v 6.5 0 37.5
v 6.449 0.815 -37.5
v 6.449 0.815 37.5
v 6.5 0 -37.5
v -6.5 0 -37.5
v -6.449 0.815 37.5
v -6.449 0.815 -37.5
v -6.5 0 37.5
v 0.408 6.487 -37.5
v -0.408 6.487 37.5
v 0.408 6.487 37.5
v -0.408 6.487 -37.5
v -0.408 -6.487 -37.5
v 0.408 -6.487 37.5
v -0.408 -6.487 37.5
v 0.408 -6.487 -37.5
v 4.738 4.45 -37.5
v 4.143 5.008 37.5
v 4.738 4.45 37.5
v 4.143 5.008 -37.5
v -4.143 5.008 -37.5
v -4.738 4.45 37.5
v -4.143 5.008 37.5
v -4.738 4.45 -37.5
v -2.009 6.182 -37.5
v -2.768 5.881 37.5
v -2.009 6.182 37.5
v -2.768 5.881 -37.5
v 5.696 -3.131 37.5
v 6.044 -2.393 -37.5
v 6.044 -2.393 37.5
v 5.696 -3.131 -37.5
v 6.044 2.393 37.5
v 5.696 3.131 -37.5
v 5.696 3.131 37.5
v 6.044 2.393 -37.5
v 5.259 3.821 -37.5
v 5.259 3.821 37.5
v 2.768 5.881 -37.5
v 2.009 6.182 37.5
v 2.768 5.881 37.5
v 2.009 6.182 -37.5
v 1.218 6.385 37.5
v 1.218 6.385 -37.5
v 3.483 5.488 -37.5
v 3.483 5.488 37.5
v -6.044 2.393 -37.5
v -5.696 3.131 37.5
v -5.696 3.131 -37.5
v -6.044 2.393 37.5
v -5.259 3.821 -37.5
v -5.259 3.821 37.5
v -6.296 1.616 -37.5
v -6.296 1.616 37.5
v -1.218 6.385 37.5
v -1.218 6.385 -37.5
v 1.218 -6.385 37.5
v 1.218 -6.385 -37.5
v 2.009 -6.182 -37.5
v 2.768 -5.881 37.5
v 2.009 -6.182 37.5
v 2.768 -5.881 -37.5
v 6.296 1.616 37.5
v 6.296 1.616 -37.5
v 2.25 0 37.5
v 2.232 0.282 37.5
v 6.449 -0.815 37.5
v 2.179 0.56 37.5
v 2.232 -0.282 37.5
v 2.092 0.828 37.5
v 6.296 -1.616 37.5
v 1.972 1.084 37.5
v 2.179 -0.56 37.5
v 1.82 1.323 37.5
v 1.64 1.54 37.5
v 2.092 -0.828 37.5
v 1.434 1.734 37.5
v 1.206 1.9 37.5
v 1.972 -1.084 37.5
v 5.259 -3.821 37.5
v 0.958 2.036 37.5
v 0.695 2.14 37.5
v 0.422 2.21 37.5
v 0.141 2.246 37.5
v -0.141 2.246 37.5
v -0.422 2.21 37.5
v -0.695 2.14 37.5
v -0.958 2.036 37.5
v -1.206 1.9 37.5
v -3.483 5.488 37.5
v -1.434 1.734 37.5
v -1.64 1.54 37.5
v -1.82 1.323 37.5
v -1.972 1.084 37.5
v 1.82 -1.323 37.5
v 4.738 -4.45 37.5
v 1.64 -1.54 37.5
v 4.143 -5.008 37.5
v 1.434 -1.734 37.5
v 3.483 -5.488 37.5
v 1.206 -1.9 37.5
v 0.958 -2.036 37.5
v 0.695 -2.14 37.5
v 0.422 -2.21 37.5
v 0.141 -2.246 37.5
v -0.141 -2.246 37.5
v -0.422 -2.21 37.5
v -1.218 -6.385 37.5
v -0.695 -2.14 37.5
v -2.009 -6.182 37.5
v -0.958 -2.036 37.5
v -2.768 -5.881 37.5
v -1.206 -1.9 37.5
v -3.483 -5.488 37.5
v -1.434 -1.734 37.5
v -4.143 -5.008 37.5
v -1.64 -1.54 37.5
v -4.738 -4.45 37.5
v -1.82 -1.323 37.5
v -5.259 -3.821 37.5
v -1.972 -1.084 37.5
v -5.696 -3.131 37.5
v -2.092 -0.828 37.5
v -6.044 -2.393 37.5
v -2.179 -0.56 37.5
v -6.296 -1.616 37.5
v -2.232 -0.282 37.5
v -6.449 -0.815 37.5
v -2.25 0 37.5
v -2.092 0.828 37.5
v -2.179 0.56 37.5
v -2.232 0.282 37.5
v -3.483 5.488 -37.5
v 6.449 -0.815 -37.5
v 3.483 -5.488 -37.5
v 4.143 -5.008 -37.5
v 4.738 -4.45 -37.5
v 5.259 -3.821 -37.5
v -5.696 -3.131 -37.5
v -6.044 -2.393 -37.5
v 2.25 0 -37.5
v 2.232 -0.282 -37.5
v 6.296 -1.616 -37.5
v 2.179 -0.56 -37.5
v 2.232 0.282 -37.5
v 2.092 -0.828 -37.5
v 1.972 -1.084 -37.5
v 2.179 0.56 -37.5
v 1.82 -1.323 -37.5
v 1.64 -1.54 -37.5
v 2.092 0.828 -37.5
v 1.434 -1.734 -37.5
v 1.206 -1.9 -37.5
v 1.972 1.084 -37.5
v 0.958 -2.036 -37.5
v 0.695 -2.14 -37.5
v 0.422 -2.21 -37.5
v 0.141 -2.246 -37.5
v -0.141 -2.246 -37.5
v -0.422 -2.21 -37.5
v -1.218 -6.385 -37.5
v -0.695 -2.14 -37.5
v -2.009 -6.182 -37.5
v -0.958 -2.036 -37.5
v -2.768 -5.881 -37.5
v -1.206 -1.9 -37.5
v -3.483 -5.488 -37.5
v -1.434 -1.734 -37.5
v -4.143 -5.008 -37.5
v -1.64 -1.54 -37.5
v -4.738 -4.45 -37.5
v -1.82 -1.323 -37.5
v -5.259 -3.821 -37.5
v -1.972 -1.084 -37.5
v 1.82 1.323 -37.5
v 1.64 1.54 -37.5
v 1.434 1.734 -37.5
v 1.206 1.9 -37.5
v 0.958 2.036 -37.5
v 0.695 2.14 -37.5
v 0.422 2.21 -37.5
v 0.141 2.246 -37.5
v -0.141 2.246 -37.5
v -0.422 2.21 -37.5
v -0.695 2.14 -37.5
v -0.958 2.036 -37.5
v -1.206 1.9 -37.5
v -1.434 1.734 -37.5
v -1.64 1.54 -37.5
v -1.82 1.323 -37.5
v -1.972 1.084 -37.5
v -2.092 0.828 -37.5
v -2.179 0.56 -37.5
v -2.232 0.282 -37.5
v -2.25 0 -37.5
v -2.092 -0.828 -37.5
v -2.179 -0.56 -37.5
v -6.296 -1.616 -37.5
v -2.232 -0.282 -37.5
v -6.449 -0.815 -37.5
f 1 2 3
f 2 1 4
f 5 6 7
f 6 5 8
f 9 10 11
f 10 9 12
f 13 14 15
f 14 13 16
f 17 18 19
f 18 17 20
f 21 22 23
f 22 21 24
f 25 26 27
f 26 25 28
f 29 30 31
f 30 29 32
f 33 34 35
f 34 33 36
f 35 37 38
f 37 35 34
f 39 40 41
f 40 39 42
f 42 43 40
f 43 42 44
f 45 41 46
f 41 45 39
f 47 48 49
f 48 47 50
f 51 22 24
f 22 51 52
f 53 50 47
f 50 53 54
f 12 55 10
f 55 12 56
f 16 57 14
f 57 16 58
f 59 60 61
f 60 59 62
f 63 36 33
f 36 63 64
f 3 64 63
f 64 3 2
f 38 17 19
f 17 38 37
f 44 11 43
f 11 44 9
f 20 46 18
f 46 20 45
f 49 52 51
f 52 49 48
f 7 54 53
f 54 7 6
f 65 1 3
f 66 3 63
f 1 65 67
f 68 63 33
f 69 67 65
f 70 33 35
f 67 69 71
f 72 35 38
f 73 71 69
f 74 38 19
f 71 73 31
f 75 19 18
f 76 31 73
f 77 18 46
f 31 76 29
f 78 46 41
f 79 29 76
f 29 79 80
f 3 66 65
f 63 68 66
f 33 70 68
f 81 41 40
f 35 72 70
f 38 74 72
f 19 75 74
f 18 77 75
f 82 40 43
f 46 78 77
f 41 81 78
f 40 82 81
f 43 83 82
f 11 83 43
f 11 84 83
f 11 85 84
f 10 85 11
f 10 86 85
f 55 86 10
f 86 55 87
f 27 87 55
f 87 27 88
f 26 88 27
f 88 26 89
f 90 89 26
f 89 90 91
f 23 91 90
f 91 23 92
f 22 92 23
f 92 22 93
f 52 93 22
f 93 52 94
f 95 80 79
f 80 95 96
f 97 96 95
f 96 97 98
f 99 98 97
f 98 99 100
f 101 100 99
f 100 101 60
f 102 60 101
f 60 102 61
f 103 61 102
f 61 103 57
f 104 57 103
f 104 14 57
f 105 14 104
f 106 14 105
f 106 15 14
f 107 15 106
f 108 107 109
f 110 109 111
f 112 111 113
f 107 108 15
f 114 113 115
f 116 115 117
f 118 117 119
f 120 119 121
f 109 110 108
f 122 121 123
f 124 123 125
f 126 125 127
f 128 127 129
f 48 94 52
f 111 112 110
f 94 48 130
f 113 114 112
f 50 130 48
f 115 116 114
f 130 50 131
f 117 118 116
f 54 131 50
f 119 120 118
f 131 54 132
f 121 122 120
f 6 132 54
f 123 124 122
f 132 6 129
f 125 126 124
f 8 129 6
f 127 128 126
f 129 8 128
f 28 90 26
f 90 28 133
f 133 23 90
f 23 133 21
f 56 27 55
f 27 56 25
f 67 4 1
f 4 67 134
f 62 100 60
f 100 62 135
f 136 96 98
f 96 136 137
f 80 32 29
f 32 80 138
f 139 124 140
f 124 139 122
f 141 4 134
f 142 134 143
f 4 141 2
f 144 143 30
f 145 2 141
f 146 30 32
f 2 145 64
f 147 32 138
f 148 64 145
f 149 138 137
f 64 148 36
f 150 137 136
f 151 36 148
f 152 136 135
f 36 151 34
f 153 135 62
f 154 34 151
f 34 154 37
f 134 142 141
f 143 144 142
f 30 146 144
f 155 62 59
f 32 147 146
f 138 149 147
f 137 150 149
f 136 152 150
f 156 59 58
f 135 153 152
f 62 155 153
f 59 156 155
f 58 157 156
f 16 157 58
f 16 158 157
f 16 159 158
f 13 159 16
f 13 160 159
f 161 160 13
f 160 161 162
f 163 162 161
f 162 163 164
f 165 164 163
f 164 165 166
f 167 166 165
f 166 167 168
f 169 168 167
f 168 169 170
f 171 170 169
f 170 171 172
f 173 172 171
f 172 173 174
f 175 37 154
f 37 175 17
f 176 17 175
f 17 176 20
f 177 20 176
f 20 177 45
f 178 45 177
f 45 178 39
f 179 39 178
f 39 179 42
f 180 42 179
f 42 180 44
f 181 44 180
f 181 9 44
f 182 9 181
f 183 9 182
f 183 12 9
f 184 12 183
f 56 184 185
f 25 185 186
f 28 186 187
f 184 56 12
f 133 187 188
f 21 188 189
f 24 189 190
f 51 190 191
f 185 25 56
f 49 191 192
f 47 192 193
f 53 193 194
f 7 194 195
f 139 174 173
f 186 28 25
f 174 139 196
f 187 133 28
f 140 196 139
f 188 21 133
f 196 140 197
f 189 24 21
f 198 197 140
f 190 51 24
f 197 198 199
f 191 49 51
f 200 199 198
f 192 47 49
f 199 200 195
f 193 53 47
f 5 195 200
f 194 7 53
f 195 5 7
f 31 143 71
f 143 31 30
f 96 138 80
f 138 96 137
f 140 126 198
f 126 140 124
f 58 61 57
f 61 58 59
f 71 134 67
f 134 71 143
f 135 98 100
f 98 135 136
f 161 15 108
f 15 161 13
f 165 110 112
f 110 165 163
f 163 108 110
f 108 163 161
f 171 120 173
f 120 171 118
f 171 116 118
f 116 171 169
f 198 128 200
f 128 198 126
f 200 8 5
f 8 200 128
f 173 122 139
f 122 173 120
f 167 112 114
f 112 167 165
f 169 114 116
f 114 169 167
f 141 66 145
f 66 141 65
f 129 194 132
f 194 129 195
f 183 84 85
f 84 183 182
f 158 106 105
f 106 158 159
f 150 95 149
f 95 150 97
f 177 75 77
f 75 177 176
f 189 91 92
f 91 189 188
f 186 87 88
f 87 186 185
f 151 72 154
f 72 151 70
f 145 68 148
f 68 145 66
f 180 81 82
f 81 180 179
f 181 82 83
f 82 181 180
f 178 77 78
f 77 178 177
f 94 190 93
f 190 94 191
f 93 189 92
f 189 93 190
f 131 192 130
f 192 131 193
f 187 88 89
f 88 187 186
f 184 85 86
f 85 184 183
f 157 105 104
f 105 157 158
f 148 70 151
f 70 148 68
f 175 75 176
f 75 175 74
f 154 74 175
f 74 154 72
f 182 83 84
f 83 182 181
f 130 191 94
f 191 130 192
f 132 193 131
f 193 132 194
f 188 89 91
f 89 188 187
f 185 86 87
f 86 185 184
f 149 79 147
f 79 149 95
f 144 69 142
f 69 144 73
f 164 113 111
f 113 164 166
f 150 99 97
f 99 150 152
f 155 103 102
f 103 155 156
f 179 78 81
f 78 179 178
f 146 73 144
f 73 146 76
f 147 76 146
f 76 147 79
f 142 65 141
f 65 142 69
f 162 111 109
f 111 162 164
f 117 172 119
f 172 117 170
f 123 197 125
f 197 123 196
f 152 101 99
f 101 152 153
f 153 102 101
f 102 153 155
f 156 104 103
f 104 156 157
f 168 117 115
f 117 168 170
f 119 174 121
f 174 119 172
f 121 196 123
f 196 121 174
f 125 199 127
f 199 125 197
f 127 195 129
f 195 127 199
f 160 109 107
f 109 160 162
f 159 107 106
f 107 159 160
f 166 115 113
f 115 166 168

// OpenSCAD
$fn = 50;


difference() {
	union() {
		translate(v = [0, 0, -37.5000000000]) {
			cylinder(h = 75, r = 6.5000000000);
		}
	}
	union() {
		translate(v = [0, 0, -100.0000000000]) {
			cylinder(h = 200, r = 2.2500000000);
		}
	}
}
